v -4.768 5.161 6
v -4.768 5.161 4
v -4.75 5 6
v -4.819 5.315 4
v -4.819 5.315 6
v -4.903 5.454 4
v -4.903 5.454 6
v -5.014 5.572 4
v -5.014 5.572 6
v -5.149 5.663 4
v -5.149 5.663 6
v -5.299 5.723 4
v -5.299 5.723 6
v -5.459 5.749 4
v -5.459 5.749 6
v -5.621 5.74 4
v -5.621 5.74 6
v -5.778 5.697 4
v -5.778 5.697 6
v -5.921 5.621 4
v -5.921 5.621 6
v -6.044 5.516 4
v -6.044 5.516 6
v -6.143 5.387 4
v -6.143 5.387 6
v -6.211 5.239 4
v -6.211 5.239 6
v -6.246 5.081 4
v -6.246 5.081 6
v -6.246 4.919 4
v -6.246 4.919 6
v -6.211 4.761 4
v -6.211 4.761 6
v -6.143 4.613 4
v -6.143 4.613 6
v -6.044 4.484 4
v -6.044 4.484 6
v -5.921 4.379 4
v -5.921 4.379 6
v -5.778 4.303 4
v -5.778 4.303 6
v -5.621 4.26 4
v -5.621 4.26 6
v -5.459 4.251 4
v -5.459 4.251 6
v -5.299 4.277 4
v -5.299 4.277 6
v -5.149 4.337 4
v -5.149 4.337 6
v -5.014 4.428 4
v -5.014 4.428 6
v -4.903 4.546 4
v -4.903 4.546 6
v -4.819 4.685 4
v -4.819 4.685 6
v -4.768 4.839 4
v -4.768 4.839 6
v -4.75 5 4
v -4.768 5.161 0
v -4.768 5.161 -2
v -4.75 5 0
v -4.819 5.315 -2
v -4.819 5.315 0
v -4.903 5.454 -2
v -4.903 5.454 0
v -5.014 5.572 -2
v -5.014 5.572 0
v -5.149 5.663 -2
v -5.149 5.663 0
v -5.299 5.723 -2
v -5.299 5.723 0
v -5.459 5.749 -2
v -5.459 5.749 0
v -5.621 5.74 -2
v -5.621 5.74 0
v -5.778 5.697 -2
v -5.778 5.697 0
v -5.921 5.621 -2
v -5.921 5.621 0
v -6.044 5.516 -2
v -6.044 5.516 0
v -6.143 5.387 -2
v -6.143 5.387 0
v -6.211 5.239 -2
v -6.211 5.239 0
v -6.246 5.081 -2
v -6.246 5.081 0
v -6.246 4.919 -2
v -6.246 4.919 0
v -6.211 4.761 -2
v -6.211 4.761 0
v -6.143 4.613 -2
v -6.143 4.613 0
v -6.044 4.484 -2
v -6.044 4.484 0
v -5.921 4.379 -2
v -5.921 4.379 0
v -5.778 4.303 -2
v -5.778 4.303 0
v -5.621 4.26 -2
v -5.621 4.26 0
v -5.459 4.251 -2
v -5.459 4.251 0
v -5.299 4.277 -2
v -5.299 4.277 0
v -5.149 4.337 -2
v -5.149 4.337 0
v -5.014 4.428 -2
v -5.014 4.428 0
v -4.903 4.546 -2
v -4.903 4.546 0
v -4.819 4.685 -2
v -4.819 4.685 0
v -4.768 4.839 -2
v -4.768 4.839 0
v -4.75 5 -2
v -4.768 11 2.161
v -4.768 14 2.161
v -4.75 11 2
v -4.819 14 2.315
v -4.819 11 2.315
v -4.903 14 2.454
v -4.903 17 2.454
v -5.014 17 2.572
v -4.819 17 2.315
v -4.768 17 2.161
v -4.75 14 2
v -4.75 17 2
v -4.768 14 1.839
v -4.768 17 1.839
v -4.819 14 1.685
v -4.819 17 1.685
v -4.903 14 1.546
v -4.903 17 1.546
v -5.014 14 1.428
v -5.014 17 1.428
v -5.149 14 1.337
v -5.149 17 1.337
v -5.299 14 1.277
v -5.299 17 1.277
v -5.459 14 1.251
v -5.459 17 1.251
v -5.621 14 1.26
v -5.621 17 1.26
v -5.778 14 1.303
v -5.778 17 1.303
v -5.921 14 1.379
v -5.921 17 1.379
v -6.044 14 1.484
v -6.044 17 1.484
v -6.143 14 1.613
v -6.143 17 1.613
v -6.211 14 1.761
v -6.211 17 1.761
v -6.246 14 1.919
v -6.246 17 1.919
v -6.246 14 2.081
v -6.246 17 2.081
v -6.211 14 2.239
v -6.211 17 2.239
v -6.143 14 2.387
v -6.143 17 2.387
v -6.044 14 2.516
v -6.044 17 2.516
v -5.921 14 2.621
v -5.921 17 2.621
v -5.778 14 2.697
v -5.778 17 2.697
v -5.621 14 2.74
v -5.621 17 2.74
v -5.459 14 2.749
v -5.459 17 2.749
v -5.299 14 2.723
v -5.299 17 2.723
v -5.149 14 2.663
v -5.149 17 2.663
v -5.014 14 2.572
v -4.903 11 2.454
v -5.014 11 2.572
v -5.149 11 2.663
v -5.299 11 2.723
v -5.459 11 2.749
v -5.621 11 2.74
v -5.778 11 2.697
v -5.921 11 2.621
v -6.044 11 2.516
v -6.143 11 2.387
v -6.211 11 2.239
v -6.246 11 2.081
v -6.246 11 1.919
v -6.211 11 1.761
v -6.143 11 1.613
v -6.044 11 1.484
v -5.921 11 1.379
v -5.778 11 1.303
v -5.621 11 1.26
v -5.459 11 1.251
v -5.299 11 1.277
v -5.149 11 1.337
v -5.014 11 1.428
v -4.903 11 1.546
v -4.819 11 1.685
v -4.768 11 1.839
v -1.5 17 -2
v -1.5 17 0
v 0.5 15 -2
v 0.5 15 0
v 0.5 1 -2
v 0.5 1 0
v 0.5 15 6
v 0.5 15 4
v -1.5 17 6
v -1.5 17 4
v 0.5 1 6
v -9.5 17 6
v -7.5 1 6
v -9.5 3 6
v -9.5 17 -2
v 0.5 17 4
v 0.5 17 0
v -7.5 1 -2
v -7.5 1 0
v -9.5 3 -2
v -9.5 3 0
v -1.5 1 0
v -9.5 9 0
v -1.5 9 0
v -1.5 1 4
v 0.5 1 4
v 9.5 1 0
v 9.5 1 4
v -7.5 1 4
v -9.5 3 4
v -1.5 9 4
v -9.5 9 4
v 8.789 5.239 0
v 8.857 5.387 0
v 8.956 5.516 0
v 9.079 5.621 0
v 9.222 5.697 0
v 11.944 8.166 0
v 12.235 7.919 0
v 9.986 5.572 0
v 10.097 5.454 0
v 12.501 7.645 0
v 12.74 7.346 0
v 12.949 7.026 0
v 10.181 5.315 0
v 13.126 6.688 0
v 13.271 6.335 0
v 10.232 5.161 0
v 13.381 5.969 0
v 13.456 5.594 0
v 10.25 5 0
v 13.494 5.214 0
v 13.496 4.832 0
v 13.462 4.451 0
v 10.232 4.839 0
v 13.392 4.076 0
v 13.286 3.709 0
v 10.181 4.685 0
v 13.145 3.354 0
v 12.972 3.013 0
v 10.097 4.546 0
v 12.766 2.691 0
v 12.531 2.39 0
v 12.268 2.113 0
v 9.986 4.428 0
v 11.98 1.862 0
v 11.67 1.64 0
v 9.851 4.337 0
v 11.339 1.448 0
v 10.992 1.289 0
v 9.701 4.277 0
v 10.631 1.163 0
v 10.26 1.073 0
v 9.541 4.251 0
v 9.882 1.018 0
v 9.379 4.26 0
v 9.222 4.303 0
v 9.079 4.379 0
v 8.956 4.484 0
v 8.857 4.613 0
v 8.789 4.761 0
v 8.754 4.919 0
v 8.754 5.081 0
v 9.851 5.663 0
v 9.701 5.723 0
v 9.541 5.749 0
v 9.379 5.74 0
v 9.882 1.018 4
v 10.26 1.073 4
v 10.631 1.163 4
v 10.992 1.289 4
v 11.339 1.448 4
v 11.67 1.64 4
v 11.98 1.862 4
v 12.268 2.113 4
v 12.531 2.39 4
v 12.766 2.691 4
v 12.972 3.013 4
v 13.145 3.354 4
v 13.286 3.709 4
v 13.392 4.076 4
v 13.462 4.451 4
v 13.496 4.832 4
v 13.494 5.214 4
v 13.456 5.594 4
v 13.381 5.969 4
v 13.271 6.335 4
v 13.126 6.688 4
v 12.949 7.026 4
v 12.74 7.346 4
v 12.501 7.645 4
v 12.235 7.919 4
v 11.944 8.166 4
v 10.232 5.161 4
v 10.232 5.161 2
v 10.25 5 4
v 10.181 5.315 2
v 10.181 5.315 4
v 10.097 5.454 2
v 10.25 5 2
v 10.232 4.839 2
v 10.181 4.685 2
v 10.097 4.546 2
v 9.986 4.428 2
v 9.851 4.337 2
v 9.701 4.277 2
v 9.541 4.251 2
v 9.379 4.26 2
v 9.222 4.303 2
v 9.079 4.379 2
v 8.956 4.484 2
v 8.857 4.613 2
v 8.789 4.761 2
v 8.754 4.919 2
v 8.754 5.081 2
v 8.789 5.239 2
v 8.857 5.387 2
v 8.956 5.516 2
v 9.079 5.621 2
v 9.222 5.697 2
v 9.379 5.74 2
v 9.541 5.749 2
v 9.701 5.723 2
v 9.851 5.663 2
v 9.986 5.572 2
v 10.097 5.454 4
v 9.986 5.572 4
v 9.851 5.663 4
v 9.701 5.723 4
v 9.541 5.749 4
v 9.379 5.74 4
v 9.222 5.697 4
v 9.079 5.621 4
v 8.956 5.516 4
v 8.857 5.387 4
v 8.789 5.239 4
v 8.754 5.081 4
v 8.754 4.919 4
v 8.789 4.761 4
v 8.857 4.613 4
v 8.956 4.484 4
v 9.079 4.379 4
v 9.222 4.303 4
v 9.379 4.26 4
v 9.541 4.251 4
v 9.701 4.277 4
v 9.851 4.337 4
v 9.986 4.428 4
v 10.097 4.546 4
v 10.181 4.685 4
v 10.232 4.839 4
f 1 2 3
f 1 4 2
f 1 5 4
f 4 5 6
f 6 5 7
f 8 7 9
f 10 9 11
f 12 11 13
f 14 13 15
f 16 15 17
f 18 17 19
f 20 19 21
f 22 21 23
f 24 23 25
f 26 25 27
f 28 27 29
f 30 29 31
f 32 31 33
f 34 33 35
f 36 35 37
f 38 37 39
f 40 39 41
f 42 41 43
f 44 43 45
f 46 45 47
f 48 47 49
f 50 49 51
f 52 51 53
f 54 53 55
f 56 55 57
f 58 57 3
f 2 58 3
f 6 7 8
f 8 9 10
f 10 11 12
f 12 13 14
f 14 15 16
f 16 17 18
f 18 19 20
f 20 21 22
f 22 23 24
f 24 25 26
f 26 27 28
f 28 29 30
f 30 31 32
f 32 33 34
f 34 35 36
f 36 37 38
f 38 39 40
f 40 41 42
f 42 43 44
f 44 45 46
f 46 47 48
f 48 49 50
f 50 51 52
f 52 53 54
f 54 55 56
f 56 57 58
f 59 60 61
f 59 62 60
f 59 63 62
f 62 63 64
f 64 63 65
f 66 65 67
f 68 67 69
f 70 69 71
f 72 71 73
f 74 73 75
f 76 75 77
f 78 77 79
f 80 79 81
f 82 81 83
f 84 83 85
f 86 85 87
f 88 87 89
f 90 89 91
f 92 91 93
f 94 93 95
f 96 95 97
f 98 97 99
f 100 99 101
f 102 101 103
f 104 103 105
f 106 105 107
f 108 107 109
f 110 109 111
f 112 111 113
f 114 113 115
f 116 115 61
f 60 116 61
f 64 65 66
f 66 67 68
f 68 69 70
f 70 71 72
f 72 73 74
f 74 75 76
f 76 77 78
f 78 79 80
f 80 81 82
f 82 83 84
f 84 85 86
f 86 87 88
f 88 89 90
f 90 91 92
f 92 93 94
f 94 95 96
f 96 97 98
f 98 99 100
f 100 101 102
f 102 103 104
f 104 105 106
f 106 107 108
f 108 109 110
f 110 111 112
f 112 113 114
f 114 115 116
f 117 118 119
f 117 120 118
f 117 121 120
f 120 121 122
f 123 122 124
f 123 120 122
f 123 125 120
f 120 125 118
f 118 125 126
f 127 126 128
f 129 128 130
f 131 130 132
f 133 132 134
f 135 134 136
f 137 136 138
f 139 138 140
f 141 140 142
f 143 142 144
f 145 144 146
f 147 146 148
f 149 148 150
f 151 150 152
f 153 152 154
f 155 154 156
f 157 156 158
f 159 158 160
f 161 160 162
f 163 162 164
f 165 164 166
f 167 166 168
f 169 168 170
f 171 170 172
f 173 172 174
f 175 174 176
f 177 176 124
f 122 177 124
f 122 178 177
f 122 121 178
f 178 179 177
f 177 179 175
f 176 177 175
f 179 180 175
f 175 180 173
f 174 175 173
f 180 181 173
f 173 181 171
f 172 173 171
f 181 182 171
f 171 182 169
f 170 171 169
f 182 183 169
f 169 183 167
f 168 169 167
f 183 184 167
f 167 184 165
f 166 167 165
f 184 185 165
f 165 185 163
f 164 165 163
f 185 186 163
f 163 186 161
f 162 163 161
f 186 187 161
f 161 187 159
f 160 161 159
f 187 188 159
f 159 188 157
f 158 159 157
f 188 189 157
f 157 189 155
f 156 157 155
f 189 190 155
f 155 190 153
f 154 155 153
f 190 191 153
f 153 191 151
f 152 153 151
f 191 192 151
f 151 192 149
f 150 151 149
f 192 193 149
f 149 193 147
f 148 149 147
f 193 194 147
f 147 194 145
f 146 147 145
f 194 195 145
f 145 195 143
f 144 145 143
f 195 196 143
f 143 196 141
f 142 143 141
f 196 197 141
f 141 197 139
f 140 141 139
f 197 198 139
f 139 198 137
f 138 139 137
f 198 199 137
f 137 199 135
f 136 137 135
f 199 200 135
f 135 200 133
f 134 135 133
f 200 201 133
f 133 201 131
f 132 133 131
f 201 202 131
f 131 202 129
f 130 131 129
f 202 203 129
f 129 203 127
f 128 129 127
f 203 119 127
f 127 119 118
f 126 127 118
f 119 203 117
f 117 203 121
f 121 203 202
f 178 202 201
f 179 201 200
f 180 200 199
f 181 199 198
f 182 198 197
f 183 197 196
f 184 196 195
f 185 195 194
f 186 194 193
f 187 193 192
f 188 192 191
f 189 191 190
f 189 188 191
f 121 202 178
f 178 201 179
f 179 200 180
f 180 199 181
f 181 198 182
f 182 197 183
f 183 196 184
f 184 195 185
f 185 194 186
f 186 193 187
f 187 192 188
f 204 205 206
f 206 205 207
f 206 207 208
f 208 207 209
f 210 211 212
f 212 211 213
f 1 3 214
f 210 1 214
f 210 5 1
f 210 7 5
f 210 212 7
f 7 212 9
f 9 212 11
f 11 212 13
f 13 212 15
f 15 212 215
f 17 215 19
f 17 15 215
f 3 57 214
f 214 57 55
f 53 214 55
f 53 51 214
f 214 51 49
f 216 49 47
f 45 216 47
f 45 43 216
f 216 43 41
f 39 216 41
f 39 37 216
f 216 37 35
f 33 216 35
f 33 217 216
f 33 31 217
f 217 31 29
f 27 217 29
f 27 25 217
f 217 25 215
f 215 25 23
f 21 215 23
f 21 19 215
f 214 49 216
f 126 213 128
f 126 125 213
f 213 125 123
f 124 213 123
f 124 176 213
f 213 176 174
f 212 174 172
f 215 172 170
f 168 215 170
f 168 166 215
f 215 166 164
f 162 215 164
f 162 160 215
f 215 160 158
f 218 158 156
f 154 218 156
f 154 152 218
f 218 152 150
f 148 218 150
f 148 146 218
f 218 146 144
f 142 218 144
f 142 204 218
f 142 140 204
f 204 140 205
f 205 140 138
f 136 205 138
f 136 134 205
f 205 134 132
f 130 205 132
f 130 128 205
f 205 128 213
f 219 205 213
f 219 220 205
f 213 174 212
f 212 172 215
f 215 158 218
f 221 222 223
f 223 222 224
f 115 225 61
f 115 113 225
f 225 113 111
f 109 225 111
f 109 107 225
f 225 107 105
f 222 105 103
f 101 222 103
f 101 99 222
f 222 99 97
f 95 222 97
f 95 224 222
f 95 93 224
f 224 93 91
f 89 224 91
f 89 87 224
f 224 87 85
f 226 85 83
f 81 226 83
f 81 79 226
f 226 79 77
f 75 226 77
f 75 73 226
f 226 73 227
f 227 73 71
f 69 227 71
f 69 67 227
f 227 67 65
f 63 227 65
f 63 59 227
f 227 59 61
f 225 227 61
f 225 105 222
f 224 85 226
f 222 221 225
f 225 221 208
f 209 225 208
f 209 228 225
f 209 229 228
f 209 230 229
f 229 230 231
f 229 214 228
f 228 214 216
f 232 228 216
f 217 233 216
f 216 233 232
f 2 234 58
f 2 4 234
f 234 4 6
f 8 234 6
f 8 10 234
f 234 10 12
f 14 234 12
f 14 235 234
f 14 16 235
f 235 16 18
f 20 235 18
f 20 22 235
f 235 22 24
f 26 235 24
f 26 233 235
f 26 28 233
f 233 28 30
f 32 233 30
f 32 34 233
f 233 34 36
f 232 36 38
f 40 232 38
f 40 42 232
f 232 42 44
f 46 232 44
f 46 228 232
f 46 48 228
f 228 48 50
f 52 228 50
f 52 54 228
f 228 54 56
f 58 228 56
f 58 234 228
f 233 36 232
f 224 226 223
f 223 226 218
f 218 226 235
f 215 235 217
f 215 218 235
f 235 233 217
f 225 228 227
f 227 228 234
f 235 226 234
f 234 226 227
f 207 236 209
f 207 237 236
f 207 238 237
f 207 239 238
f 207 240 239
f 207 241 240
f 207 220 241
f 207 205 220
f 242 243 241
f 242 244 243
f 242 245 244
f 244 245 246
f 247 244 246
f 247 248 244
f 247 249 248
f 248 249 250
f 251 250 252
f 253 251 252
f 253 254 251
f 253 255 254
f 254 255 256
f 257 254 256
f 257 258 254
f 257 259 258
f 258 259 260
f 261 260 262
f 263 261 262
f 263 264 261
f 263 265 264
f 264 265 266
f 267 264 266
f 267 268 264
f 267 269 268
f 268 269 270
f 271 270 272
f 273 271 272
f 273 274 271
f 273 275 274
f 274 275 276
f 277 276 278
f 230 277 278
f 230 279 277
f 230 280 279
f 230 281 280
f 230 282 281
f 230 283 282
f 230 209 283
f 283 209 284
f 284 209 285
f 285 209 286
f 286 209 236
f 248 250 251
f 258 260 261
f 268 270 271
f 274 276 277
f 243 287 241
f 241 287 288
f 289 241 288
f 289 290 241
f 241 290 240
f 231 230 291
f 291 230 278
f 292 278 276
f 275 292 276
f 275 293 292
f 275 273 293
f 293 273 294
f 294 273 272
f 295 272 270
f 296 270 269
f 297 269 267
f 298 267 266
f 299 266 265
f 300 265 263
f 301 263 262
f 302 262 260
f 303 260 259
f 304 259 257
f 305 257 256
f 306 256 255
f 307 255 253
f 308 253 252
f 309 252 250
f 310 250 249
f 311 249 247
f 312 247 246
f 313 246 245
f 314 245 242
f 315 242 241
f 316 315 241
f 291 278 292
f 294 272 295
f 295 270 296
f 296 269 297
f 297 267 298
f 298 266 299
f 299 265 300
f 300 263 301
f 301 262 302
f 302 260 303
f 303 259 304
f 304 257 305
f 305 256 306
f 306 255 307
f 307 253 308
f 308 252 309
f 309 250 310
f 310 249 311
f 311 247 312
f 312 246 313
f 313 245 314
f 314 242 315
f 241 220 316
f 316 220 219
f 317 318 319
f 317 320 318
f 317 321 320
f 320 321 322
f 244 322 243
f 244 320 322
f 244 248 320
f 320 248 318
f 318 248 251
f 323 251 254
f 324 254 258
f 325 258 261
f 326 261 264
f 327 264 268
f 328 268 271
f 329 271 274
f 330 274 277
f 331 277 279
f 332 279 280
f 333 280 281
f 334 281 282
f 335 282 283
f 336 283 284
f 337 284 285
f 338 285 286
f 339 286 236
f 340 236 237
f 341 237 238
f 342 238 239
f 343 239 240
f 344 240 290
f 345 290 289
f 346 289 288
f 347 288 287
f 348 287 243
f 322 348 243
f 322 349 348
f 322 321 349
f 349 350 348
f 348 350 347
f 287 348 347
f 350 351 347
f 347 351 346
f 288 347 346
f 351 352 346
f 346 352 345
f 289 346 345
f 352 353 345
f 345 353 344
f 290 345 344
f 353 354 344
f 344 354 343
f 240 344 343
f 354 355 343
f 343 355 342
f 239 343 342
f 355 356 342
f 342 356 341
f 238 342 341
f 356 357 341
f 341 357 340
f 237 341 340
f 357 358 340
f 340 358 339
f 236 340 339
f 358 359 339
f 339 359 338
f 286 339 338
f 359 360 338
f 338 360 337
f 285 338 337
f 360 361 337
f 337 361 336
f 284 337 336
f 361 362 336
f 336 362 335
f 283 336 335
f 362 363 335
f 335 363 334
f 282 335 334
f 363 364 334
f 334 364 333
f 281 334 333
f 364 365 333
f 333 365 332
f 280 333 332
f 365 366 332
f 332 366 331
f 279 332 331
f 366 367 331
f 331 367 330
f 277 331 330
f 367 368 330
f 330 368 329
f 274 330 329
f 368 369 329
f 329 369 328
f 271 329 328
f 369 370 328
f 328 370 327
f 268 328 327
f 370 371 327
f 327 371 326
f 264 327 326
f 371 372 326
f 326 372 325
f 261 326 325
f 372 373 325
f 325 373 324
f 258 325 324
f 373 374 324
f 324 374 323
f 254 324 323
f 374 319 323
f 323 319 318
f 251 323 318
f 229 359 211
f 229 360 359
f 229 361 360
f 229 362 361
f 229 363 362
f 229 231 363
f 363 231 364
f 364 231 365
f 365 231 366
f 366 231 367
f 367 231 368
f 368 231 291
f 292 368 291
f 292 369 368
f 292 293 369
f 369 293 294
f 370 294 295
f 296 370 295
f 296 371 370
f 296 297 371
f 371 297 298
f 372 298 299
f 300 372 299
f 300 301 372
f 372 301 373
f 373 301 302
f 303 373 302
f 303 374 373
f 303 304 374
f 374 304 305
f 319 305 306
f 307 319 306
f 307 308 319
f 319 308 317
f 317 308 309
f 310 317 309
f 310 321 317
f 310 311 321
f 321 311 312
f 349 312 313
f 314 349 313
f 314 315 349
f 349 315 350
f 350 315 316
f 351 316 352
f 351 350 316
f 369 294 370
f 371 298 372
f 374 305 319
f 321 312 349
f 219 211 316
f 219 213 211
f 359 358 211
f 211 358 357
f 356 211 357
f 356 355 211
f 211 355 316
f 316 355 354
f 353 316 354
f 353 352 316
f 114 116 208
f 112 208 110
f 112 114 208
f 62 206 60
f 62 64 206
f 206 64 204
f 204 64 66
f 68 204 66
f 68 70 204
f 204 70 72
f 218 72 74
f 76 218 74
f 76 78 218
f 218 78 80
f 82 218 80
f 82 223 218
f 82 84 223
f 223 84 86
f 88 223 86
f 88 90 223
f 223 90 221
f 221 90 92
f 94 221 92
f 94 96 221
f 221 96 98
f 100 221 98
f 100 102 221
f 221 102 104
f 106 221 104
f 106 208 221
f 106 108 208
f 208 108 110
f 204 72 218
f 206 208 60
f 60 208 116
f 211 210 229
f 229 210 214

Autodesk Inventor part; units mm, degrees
ref_plane "YZ Plane" through (0, 0, 0) normal (1, 0, 0) x (0, 1, 0)
ref_plane "XZ Plane" through (0, 0, 0) normal (0, 1, 0) x (-1, 0, 0)
ref_plane "XY Plane" through (0, 0, 0) normal (0, 0, 1) x (1, 0, 0)
sketch "Sketch1" plane through (0, 0, 0) normal (0, 0, 1) x (1, 0, 0)
  circle A0 centre (9.5, 5) radius 0.75
  arc A1 (9.5, 1) -> (11.9441, 8.1664) centre (9.5, 5) ccw
  circle A2 centre (9.5, 5) radius 6.5 construction
  line L0 (9.5, 5) -> (-5.5, 5) construction
  circle A3 centre (-5.5, 5) radius 0.75
  line L1 (9.5, 1) -> (-9.5, 1)
  line L2 (-9.5, 1) -> (-9.5, 9)
  line L3 (-9.5, 9) -> (-9.5, 17)
  line L4 (-9.5, 17) -> (0.5, 17)
  line L5 (0.5, 17) -> (11.9441, 8.1664)
  point P0 (0, 0)
  dimension "d0" = 8
  dimension "d1" = 13
  dimension "d4" = 1.5
  dimension "d19" = 8
  dimension "d20" = 10
  dimension "d37" = 19
  dimension "d39" = 4
extrude "Extrusion1" add sketch "Sketch1" along normal blind 4
sketch "Sketch5" plane through (-9.5, 17, 0) normal (0, 1, 0) x (1, 0, 0)
  line L0 (10, 0) -> (0, 0) projected
  line L1 (0, 0) -> (0, -4) projected
  line L2 (10, -4) -> (0, -4) projected
  line L3 (10, 0) -> (10, -4) projected
  line L4 (0, 2) -> (10, 2)
  line L5 (10, 2) -> (10, -6)
  line L6 (10, -6) -> (0, -6)
  line L7 (0, -6) -> (0, 2)
  point P0 (9.5, 0)
  dimension "d40" = 2
  dimension "d41" = 8
  dimension "d42" = 10
extrude "Extrusion5" add sketch "Sketch5" against normal blind 16 contours L0 L7 L4 L5 | L5 L6 L7 L2
sketch "Sketch6" plane through (9.5, 1, 0) normal (0, -1, 0) x (1, 0, 0)
  line L0 (-9, 6) -> (-19, 6) projected
  line L1 (-19, 6) -> (-19, -2) projected
  line L2 (-19, -2) -> (-9, -2) projected
  line L3 (-9, -2) -> (-9, 0) projected
  line L4 (-19, 4) -> (-11, 4)
  line L5 (-11, 4) -> (-11, 0)
  line L6 (-11, 0) -> (-19, 0)
  point P0 (-9.5, 0)
  dimension "d45" = 2
  dimension "d46" = 2
  dimension "d47" = 8
extrude "Extrusion6" cut sketch "Sketch6" against normal blind 8
chamfer "Chamfer5" distance 2 angle 45 4 edges at (-9.5, 1, 5) (-9.5, 1, -1) (0.5, 17, 5) (0.5, 17, -1)
sketch "Sketch7" plane through (0.5, 17, 4) normal (0, 1, 0) x (1, 0, 0)
  line L0 (-10, 6) -> (-2, 6) projected
  line L1 (0, 4) -> (0, 0) projected
  circle A0 centre (-6, 2) radius 0.75
  point P0 (-8, 6)
  point P1 (-0.5, 4)
  dimension "d53" = 1.5
  dimension "d54" = 4
  dimension "d55" = 6
extrude "Extrusion7" cut sketch "Sketch7" against normal blind 6
sketch "Sketch8" plane through (-9.5, 17, 6) normal (0, 0, 1) x (1, 0, 0)
  line L0 (0, 0) -> (0, -14) projected
  line L1 (10, -16) -> (2, -16) projected
  circle A0 centre (4, -12) radius 0.75
  point P0 (9.5, -17)
  dimension "d58" = 1.5
  dimension "d59" = 4
  dimension "d60" = 4
extrude "Extrusion8" cut sketch "Sketch8" against normal blind 8
properties part number "Finger Joint"
